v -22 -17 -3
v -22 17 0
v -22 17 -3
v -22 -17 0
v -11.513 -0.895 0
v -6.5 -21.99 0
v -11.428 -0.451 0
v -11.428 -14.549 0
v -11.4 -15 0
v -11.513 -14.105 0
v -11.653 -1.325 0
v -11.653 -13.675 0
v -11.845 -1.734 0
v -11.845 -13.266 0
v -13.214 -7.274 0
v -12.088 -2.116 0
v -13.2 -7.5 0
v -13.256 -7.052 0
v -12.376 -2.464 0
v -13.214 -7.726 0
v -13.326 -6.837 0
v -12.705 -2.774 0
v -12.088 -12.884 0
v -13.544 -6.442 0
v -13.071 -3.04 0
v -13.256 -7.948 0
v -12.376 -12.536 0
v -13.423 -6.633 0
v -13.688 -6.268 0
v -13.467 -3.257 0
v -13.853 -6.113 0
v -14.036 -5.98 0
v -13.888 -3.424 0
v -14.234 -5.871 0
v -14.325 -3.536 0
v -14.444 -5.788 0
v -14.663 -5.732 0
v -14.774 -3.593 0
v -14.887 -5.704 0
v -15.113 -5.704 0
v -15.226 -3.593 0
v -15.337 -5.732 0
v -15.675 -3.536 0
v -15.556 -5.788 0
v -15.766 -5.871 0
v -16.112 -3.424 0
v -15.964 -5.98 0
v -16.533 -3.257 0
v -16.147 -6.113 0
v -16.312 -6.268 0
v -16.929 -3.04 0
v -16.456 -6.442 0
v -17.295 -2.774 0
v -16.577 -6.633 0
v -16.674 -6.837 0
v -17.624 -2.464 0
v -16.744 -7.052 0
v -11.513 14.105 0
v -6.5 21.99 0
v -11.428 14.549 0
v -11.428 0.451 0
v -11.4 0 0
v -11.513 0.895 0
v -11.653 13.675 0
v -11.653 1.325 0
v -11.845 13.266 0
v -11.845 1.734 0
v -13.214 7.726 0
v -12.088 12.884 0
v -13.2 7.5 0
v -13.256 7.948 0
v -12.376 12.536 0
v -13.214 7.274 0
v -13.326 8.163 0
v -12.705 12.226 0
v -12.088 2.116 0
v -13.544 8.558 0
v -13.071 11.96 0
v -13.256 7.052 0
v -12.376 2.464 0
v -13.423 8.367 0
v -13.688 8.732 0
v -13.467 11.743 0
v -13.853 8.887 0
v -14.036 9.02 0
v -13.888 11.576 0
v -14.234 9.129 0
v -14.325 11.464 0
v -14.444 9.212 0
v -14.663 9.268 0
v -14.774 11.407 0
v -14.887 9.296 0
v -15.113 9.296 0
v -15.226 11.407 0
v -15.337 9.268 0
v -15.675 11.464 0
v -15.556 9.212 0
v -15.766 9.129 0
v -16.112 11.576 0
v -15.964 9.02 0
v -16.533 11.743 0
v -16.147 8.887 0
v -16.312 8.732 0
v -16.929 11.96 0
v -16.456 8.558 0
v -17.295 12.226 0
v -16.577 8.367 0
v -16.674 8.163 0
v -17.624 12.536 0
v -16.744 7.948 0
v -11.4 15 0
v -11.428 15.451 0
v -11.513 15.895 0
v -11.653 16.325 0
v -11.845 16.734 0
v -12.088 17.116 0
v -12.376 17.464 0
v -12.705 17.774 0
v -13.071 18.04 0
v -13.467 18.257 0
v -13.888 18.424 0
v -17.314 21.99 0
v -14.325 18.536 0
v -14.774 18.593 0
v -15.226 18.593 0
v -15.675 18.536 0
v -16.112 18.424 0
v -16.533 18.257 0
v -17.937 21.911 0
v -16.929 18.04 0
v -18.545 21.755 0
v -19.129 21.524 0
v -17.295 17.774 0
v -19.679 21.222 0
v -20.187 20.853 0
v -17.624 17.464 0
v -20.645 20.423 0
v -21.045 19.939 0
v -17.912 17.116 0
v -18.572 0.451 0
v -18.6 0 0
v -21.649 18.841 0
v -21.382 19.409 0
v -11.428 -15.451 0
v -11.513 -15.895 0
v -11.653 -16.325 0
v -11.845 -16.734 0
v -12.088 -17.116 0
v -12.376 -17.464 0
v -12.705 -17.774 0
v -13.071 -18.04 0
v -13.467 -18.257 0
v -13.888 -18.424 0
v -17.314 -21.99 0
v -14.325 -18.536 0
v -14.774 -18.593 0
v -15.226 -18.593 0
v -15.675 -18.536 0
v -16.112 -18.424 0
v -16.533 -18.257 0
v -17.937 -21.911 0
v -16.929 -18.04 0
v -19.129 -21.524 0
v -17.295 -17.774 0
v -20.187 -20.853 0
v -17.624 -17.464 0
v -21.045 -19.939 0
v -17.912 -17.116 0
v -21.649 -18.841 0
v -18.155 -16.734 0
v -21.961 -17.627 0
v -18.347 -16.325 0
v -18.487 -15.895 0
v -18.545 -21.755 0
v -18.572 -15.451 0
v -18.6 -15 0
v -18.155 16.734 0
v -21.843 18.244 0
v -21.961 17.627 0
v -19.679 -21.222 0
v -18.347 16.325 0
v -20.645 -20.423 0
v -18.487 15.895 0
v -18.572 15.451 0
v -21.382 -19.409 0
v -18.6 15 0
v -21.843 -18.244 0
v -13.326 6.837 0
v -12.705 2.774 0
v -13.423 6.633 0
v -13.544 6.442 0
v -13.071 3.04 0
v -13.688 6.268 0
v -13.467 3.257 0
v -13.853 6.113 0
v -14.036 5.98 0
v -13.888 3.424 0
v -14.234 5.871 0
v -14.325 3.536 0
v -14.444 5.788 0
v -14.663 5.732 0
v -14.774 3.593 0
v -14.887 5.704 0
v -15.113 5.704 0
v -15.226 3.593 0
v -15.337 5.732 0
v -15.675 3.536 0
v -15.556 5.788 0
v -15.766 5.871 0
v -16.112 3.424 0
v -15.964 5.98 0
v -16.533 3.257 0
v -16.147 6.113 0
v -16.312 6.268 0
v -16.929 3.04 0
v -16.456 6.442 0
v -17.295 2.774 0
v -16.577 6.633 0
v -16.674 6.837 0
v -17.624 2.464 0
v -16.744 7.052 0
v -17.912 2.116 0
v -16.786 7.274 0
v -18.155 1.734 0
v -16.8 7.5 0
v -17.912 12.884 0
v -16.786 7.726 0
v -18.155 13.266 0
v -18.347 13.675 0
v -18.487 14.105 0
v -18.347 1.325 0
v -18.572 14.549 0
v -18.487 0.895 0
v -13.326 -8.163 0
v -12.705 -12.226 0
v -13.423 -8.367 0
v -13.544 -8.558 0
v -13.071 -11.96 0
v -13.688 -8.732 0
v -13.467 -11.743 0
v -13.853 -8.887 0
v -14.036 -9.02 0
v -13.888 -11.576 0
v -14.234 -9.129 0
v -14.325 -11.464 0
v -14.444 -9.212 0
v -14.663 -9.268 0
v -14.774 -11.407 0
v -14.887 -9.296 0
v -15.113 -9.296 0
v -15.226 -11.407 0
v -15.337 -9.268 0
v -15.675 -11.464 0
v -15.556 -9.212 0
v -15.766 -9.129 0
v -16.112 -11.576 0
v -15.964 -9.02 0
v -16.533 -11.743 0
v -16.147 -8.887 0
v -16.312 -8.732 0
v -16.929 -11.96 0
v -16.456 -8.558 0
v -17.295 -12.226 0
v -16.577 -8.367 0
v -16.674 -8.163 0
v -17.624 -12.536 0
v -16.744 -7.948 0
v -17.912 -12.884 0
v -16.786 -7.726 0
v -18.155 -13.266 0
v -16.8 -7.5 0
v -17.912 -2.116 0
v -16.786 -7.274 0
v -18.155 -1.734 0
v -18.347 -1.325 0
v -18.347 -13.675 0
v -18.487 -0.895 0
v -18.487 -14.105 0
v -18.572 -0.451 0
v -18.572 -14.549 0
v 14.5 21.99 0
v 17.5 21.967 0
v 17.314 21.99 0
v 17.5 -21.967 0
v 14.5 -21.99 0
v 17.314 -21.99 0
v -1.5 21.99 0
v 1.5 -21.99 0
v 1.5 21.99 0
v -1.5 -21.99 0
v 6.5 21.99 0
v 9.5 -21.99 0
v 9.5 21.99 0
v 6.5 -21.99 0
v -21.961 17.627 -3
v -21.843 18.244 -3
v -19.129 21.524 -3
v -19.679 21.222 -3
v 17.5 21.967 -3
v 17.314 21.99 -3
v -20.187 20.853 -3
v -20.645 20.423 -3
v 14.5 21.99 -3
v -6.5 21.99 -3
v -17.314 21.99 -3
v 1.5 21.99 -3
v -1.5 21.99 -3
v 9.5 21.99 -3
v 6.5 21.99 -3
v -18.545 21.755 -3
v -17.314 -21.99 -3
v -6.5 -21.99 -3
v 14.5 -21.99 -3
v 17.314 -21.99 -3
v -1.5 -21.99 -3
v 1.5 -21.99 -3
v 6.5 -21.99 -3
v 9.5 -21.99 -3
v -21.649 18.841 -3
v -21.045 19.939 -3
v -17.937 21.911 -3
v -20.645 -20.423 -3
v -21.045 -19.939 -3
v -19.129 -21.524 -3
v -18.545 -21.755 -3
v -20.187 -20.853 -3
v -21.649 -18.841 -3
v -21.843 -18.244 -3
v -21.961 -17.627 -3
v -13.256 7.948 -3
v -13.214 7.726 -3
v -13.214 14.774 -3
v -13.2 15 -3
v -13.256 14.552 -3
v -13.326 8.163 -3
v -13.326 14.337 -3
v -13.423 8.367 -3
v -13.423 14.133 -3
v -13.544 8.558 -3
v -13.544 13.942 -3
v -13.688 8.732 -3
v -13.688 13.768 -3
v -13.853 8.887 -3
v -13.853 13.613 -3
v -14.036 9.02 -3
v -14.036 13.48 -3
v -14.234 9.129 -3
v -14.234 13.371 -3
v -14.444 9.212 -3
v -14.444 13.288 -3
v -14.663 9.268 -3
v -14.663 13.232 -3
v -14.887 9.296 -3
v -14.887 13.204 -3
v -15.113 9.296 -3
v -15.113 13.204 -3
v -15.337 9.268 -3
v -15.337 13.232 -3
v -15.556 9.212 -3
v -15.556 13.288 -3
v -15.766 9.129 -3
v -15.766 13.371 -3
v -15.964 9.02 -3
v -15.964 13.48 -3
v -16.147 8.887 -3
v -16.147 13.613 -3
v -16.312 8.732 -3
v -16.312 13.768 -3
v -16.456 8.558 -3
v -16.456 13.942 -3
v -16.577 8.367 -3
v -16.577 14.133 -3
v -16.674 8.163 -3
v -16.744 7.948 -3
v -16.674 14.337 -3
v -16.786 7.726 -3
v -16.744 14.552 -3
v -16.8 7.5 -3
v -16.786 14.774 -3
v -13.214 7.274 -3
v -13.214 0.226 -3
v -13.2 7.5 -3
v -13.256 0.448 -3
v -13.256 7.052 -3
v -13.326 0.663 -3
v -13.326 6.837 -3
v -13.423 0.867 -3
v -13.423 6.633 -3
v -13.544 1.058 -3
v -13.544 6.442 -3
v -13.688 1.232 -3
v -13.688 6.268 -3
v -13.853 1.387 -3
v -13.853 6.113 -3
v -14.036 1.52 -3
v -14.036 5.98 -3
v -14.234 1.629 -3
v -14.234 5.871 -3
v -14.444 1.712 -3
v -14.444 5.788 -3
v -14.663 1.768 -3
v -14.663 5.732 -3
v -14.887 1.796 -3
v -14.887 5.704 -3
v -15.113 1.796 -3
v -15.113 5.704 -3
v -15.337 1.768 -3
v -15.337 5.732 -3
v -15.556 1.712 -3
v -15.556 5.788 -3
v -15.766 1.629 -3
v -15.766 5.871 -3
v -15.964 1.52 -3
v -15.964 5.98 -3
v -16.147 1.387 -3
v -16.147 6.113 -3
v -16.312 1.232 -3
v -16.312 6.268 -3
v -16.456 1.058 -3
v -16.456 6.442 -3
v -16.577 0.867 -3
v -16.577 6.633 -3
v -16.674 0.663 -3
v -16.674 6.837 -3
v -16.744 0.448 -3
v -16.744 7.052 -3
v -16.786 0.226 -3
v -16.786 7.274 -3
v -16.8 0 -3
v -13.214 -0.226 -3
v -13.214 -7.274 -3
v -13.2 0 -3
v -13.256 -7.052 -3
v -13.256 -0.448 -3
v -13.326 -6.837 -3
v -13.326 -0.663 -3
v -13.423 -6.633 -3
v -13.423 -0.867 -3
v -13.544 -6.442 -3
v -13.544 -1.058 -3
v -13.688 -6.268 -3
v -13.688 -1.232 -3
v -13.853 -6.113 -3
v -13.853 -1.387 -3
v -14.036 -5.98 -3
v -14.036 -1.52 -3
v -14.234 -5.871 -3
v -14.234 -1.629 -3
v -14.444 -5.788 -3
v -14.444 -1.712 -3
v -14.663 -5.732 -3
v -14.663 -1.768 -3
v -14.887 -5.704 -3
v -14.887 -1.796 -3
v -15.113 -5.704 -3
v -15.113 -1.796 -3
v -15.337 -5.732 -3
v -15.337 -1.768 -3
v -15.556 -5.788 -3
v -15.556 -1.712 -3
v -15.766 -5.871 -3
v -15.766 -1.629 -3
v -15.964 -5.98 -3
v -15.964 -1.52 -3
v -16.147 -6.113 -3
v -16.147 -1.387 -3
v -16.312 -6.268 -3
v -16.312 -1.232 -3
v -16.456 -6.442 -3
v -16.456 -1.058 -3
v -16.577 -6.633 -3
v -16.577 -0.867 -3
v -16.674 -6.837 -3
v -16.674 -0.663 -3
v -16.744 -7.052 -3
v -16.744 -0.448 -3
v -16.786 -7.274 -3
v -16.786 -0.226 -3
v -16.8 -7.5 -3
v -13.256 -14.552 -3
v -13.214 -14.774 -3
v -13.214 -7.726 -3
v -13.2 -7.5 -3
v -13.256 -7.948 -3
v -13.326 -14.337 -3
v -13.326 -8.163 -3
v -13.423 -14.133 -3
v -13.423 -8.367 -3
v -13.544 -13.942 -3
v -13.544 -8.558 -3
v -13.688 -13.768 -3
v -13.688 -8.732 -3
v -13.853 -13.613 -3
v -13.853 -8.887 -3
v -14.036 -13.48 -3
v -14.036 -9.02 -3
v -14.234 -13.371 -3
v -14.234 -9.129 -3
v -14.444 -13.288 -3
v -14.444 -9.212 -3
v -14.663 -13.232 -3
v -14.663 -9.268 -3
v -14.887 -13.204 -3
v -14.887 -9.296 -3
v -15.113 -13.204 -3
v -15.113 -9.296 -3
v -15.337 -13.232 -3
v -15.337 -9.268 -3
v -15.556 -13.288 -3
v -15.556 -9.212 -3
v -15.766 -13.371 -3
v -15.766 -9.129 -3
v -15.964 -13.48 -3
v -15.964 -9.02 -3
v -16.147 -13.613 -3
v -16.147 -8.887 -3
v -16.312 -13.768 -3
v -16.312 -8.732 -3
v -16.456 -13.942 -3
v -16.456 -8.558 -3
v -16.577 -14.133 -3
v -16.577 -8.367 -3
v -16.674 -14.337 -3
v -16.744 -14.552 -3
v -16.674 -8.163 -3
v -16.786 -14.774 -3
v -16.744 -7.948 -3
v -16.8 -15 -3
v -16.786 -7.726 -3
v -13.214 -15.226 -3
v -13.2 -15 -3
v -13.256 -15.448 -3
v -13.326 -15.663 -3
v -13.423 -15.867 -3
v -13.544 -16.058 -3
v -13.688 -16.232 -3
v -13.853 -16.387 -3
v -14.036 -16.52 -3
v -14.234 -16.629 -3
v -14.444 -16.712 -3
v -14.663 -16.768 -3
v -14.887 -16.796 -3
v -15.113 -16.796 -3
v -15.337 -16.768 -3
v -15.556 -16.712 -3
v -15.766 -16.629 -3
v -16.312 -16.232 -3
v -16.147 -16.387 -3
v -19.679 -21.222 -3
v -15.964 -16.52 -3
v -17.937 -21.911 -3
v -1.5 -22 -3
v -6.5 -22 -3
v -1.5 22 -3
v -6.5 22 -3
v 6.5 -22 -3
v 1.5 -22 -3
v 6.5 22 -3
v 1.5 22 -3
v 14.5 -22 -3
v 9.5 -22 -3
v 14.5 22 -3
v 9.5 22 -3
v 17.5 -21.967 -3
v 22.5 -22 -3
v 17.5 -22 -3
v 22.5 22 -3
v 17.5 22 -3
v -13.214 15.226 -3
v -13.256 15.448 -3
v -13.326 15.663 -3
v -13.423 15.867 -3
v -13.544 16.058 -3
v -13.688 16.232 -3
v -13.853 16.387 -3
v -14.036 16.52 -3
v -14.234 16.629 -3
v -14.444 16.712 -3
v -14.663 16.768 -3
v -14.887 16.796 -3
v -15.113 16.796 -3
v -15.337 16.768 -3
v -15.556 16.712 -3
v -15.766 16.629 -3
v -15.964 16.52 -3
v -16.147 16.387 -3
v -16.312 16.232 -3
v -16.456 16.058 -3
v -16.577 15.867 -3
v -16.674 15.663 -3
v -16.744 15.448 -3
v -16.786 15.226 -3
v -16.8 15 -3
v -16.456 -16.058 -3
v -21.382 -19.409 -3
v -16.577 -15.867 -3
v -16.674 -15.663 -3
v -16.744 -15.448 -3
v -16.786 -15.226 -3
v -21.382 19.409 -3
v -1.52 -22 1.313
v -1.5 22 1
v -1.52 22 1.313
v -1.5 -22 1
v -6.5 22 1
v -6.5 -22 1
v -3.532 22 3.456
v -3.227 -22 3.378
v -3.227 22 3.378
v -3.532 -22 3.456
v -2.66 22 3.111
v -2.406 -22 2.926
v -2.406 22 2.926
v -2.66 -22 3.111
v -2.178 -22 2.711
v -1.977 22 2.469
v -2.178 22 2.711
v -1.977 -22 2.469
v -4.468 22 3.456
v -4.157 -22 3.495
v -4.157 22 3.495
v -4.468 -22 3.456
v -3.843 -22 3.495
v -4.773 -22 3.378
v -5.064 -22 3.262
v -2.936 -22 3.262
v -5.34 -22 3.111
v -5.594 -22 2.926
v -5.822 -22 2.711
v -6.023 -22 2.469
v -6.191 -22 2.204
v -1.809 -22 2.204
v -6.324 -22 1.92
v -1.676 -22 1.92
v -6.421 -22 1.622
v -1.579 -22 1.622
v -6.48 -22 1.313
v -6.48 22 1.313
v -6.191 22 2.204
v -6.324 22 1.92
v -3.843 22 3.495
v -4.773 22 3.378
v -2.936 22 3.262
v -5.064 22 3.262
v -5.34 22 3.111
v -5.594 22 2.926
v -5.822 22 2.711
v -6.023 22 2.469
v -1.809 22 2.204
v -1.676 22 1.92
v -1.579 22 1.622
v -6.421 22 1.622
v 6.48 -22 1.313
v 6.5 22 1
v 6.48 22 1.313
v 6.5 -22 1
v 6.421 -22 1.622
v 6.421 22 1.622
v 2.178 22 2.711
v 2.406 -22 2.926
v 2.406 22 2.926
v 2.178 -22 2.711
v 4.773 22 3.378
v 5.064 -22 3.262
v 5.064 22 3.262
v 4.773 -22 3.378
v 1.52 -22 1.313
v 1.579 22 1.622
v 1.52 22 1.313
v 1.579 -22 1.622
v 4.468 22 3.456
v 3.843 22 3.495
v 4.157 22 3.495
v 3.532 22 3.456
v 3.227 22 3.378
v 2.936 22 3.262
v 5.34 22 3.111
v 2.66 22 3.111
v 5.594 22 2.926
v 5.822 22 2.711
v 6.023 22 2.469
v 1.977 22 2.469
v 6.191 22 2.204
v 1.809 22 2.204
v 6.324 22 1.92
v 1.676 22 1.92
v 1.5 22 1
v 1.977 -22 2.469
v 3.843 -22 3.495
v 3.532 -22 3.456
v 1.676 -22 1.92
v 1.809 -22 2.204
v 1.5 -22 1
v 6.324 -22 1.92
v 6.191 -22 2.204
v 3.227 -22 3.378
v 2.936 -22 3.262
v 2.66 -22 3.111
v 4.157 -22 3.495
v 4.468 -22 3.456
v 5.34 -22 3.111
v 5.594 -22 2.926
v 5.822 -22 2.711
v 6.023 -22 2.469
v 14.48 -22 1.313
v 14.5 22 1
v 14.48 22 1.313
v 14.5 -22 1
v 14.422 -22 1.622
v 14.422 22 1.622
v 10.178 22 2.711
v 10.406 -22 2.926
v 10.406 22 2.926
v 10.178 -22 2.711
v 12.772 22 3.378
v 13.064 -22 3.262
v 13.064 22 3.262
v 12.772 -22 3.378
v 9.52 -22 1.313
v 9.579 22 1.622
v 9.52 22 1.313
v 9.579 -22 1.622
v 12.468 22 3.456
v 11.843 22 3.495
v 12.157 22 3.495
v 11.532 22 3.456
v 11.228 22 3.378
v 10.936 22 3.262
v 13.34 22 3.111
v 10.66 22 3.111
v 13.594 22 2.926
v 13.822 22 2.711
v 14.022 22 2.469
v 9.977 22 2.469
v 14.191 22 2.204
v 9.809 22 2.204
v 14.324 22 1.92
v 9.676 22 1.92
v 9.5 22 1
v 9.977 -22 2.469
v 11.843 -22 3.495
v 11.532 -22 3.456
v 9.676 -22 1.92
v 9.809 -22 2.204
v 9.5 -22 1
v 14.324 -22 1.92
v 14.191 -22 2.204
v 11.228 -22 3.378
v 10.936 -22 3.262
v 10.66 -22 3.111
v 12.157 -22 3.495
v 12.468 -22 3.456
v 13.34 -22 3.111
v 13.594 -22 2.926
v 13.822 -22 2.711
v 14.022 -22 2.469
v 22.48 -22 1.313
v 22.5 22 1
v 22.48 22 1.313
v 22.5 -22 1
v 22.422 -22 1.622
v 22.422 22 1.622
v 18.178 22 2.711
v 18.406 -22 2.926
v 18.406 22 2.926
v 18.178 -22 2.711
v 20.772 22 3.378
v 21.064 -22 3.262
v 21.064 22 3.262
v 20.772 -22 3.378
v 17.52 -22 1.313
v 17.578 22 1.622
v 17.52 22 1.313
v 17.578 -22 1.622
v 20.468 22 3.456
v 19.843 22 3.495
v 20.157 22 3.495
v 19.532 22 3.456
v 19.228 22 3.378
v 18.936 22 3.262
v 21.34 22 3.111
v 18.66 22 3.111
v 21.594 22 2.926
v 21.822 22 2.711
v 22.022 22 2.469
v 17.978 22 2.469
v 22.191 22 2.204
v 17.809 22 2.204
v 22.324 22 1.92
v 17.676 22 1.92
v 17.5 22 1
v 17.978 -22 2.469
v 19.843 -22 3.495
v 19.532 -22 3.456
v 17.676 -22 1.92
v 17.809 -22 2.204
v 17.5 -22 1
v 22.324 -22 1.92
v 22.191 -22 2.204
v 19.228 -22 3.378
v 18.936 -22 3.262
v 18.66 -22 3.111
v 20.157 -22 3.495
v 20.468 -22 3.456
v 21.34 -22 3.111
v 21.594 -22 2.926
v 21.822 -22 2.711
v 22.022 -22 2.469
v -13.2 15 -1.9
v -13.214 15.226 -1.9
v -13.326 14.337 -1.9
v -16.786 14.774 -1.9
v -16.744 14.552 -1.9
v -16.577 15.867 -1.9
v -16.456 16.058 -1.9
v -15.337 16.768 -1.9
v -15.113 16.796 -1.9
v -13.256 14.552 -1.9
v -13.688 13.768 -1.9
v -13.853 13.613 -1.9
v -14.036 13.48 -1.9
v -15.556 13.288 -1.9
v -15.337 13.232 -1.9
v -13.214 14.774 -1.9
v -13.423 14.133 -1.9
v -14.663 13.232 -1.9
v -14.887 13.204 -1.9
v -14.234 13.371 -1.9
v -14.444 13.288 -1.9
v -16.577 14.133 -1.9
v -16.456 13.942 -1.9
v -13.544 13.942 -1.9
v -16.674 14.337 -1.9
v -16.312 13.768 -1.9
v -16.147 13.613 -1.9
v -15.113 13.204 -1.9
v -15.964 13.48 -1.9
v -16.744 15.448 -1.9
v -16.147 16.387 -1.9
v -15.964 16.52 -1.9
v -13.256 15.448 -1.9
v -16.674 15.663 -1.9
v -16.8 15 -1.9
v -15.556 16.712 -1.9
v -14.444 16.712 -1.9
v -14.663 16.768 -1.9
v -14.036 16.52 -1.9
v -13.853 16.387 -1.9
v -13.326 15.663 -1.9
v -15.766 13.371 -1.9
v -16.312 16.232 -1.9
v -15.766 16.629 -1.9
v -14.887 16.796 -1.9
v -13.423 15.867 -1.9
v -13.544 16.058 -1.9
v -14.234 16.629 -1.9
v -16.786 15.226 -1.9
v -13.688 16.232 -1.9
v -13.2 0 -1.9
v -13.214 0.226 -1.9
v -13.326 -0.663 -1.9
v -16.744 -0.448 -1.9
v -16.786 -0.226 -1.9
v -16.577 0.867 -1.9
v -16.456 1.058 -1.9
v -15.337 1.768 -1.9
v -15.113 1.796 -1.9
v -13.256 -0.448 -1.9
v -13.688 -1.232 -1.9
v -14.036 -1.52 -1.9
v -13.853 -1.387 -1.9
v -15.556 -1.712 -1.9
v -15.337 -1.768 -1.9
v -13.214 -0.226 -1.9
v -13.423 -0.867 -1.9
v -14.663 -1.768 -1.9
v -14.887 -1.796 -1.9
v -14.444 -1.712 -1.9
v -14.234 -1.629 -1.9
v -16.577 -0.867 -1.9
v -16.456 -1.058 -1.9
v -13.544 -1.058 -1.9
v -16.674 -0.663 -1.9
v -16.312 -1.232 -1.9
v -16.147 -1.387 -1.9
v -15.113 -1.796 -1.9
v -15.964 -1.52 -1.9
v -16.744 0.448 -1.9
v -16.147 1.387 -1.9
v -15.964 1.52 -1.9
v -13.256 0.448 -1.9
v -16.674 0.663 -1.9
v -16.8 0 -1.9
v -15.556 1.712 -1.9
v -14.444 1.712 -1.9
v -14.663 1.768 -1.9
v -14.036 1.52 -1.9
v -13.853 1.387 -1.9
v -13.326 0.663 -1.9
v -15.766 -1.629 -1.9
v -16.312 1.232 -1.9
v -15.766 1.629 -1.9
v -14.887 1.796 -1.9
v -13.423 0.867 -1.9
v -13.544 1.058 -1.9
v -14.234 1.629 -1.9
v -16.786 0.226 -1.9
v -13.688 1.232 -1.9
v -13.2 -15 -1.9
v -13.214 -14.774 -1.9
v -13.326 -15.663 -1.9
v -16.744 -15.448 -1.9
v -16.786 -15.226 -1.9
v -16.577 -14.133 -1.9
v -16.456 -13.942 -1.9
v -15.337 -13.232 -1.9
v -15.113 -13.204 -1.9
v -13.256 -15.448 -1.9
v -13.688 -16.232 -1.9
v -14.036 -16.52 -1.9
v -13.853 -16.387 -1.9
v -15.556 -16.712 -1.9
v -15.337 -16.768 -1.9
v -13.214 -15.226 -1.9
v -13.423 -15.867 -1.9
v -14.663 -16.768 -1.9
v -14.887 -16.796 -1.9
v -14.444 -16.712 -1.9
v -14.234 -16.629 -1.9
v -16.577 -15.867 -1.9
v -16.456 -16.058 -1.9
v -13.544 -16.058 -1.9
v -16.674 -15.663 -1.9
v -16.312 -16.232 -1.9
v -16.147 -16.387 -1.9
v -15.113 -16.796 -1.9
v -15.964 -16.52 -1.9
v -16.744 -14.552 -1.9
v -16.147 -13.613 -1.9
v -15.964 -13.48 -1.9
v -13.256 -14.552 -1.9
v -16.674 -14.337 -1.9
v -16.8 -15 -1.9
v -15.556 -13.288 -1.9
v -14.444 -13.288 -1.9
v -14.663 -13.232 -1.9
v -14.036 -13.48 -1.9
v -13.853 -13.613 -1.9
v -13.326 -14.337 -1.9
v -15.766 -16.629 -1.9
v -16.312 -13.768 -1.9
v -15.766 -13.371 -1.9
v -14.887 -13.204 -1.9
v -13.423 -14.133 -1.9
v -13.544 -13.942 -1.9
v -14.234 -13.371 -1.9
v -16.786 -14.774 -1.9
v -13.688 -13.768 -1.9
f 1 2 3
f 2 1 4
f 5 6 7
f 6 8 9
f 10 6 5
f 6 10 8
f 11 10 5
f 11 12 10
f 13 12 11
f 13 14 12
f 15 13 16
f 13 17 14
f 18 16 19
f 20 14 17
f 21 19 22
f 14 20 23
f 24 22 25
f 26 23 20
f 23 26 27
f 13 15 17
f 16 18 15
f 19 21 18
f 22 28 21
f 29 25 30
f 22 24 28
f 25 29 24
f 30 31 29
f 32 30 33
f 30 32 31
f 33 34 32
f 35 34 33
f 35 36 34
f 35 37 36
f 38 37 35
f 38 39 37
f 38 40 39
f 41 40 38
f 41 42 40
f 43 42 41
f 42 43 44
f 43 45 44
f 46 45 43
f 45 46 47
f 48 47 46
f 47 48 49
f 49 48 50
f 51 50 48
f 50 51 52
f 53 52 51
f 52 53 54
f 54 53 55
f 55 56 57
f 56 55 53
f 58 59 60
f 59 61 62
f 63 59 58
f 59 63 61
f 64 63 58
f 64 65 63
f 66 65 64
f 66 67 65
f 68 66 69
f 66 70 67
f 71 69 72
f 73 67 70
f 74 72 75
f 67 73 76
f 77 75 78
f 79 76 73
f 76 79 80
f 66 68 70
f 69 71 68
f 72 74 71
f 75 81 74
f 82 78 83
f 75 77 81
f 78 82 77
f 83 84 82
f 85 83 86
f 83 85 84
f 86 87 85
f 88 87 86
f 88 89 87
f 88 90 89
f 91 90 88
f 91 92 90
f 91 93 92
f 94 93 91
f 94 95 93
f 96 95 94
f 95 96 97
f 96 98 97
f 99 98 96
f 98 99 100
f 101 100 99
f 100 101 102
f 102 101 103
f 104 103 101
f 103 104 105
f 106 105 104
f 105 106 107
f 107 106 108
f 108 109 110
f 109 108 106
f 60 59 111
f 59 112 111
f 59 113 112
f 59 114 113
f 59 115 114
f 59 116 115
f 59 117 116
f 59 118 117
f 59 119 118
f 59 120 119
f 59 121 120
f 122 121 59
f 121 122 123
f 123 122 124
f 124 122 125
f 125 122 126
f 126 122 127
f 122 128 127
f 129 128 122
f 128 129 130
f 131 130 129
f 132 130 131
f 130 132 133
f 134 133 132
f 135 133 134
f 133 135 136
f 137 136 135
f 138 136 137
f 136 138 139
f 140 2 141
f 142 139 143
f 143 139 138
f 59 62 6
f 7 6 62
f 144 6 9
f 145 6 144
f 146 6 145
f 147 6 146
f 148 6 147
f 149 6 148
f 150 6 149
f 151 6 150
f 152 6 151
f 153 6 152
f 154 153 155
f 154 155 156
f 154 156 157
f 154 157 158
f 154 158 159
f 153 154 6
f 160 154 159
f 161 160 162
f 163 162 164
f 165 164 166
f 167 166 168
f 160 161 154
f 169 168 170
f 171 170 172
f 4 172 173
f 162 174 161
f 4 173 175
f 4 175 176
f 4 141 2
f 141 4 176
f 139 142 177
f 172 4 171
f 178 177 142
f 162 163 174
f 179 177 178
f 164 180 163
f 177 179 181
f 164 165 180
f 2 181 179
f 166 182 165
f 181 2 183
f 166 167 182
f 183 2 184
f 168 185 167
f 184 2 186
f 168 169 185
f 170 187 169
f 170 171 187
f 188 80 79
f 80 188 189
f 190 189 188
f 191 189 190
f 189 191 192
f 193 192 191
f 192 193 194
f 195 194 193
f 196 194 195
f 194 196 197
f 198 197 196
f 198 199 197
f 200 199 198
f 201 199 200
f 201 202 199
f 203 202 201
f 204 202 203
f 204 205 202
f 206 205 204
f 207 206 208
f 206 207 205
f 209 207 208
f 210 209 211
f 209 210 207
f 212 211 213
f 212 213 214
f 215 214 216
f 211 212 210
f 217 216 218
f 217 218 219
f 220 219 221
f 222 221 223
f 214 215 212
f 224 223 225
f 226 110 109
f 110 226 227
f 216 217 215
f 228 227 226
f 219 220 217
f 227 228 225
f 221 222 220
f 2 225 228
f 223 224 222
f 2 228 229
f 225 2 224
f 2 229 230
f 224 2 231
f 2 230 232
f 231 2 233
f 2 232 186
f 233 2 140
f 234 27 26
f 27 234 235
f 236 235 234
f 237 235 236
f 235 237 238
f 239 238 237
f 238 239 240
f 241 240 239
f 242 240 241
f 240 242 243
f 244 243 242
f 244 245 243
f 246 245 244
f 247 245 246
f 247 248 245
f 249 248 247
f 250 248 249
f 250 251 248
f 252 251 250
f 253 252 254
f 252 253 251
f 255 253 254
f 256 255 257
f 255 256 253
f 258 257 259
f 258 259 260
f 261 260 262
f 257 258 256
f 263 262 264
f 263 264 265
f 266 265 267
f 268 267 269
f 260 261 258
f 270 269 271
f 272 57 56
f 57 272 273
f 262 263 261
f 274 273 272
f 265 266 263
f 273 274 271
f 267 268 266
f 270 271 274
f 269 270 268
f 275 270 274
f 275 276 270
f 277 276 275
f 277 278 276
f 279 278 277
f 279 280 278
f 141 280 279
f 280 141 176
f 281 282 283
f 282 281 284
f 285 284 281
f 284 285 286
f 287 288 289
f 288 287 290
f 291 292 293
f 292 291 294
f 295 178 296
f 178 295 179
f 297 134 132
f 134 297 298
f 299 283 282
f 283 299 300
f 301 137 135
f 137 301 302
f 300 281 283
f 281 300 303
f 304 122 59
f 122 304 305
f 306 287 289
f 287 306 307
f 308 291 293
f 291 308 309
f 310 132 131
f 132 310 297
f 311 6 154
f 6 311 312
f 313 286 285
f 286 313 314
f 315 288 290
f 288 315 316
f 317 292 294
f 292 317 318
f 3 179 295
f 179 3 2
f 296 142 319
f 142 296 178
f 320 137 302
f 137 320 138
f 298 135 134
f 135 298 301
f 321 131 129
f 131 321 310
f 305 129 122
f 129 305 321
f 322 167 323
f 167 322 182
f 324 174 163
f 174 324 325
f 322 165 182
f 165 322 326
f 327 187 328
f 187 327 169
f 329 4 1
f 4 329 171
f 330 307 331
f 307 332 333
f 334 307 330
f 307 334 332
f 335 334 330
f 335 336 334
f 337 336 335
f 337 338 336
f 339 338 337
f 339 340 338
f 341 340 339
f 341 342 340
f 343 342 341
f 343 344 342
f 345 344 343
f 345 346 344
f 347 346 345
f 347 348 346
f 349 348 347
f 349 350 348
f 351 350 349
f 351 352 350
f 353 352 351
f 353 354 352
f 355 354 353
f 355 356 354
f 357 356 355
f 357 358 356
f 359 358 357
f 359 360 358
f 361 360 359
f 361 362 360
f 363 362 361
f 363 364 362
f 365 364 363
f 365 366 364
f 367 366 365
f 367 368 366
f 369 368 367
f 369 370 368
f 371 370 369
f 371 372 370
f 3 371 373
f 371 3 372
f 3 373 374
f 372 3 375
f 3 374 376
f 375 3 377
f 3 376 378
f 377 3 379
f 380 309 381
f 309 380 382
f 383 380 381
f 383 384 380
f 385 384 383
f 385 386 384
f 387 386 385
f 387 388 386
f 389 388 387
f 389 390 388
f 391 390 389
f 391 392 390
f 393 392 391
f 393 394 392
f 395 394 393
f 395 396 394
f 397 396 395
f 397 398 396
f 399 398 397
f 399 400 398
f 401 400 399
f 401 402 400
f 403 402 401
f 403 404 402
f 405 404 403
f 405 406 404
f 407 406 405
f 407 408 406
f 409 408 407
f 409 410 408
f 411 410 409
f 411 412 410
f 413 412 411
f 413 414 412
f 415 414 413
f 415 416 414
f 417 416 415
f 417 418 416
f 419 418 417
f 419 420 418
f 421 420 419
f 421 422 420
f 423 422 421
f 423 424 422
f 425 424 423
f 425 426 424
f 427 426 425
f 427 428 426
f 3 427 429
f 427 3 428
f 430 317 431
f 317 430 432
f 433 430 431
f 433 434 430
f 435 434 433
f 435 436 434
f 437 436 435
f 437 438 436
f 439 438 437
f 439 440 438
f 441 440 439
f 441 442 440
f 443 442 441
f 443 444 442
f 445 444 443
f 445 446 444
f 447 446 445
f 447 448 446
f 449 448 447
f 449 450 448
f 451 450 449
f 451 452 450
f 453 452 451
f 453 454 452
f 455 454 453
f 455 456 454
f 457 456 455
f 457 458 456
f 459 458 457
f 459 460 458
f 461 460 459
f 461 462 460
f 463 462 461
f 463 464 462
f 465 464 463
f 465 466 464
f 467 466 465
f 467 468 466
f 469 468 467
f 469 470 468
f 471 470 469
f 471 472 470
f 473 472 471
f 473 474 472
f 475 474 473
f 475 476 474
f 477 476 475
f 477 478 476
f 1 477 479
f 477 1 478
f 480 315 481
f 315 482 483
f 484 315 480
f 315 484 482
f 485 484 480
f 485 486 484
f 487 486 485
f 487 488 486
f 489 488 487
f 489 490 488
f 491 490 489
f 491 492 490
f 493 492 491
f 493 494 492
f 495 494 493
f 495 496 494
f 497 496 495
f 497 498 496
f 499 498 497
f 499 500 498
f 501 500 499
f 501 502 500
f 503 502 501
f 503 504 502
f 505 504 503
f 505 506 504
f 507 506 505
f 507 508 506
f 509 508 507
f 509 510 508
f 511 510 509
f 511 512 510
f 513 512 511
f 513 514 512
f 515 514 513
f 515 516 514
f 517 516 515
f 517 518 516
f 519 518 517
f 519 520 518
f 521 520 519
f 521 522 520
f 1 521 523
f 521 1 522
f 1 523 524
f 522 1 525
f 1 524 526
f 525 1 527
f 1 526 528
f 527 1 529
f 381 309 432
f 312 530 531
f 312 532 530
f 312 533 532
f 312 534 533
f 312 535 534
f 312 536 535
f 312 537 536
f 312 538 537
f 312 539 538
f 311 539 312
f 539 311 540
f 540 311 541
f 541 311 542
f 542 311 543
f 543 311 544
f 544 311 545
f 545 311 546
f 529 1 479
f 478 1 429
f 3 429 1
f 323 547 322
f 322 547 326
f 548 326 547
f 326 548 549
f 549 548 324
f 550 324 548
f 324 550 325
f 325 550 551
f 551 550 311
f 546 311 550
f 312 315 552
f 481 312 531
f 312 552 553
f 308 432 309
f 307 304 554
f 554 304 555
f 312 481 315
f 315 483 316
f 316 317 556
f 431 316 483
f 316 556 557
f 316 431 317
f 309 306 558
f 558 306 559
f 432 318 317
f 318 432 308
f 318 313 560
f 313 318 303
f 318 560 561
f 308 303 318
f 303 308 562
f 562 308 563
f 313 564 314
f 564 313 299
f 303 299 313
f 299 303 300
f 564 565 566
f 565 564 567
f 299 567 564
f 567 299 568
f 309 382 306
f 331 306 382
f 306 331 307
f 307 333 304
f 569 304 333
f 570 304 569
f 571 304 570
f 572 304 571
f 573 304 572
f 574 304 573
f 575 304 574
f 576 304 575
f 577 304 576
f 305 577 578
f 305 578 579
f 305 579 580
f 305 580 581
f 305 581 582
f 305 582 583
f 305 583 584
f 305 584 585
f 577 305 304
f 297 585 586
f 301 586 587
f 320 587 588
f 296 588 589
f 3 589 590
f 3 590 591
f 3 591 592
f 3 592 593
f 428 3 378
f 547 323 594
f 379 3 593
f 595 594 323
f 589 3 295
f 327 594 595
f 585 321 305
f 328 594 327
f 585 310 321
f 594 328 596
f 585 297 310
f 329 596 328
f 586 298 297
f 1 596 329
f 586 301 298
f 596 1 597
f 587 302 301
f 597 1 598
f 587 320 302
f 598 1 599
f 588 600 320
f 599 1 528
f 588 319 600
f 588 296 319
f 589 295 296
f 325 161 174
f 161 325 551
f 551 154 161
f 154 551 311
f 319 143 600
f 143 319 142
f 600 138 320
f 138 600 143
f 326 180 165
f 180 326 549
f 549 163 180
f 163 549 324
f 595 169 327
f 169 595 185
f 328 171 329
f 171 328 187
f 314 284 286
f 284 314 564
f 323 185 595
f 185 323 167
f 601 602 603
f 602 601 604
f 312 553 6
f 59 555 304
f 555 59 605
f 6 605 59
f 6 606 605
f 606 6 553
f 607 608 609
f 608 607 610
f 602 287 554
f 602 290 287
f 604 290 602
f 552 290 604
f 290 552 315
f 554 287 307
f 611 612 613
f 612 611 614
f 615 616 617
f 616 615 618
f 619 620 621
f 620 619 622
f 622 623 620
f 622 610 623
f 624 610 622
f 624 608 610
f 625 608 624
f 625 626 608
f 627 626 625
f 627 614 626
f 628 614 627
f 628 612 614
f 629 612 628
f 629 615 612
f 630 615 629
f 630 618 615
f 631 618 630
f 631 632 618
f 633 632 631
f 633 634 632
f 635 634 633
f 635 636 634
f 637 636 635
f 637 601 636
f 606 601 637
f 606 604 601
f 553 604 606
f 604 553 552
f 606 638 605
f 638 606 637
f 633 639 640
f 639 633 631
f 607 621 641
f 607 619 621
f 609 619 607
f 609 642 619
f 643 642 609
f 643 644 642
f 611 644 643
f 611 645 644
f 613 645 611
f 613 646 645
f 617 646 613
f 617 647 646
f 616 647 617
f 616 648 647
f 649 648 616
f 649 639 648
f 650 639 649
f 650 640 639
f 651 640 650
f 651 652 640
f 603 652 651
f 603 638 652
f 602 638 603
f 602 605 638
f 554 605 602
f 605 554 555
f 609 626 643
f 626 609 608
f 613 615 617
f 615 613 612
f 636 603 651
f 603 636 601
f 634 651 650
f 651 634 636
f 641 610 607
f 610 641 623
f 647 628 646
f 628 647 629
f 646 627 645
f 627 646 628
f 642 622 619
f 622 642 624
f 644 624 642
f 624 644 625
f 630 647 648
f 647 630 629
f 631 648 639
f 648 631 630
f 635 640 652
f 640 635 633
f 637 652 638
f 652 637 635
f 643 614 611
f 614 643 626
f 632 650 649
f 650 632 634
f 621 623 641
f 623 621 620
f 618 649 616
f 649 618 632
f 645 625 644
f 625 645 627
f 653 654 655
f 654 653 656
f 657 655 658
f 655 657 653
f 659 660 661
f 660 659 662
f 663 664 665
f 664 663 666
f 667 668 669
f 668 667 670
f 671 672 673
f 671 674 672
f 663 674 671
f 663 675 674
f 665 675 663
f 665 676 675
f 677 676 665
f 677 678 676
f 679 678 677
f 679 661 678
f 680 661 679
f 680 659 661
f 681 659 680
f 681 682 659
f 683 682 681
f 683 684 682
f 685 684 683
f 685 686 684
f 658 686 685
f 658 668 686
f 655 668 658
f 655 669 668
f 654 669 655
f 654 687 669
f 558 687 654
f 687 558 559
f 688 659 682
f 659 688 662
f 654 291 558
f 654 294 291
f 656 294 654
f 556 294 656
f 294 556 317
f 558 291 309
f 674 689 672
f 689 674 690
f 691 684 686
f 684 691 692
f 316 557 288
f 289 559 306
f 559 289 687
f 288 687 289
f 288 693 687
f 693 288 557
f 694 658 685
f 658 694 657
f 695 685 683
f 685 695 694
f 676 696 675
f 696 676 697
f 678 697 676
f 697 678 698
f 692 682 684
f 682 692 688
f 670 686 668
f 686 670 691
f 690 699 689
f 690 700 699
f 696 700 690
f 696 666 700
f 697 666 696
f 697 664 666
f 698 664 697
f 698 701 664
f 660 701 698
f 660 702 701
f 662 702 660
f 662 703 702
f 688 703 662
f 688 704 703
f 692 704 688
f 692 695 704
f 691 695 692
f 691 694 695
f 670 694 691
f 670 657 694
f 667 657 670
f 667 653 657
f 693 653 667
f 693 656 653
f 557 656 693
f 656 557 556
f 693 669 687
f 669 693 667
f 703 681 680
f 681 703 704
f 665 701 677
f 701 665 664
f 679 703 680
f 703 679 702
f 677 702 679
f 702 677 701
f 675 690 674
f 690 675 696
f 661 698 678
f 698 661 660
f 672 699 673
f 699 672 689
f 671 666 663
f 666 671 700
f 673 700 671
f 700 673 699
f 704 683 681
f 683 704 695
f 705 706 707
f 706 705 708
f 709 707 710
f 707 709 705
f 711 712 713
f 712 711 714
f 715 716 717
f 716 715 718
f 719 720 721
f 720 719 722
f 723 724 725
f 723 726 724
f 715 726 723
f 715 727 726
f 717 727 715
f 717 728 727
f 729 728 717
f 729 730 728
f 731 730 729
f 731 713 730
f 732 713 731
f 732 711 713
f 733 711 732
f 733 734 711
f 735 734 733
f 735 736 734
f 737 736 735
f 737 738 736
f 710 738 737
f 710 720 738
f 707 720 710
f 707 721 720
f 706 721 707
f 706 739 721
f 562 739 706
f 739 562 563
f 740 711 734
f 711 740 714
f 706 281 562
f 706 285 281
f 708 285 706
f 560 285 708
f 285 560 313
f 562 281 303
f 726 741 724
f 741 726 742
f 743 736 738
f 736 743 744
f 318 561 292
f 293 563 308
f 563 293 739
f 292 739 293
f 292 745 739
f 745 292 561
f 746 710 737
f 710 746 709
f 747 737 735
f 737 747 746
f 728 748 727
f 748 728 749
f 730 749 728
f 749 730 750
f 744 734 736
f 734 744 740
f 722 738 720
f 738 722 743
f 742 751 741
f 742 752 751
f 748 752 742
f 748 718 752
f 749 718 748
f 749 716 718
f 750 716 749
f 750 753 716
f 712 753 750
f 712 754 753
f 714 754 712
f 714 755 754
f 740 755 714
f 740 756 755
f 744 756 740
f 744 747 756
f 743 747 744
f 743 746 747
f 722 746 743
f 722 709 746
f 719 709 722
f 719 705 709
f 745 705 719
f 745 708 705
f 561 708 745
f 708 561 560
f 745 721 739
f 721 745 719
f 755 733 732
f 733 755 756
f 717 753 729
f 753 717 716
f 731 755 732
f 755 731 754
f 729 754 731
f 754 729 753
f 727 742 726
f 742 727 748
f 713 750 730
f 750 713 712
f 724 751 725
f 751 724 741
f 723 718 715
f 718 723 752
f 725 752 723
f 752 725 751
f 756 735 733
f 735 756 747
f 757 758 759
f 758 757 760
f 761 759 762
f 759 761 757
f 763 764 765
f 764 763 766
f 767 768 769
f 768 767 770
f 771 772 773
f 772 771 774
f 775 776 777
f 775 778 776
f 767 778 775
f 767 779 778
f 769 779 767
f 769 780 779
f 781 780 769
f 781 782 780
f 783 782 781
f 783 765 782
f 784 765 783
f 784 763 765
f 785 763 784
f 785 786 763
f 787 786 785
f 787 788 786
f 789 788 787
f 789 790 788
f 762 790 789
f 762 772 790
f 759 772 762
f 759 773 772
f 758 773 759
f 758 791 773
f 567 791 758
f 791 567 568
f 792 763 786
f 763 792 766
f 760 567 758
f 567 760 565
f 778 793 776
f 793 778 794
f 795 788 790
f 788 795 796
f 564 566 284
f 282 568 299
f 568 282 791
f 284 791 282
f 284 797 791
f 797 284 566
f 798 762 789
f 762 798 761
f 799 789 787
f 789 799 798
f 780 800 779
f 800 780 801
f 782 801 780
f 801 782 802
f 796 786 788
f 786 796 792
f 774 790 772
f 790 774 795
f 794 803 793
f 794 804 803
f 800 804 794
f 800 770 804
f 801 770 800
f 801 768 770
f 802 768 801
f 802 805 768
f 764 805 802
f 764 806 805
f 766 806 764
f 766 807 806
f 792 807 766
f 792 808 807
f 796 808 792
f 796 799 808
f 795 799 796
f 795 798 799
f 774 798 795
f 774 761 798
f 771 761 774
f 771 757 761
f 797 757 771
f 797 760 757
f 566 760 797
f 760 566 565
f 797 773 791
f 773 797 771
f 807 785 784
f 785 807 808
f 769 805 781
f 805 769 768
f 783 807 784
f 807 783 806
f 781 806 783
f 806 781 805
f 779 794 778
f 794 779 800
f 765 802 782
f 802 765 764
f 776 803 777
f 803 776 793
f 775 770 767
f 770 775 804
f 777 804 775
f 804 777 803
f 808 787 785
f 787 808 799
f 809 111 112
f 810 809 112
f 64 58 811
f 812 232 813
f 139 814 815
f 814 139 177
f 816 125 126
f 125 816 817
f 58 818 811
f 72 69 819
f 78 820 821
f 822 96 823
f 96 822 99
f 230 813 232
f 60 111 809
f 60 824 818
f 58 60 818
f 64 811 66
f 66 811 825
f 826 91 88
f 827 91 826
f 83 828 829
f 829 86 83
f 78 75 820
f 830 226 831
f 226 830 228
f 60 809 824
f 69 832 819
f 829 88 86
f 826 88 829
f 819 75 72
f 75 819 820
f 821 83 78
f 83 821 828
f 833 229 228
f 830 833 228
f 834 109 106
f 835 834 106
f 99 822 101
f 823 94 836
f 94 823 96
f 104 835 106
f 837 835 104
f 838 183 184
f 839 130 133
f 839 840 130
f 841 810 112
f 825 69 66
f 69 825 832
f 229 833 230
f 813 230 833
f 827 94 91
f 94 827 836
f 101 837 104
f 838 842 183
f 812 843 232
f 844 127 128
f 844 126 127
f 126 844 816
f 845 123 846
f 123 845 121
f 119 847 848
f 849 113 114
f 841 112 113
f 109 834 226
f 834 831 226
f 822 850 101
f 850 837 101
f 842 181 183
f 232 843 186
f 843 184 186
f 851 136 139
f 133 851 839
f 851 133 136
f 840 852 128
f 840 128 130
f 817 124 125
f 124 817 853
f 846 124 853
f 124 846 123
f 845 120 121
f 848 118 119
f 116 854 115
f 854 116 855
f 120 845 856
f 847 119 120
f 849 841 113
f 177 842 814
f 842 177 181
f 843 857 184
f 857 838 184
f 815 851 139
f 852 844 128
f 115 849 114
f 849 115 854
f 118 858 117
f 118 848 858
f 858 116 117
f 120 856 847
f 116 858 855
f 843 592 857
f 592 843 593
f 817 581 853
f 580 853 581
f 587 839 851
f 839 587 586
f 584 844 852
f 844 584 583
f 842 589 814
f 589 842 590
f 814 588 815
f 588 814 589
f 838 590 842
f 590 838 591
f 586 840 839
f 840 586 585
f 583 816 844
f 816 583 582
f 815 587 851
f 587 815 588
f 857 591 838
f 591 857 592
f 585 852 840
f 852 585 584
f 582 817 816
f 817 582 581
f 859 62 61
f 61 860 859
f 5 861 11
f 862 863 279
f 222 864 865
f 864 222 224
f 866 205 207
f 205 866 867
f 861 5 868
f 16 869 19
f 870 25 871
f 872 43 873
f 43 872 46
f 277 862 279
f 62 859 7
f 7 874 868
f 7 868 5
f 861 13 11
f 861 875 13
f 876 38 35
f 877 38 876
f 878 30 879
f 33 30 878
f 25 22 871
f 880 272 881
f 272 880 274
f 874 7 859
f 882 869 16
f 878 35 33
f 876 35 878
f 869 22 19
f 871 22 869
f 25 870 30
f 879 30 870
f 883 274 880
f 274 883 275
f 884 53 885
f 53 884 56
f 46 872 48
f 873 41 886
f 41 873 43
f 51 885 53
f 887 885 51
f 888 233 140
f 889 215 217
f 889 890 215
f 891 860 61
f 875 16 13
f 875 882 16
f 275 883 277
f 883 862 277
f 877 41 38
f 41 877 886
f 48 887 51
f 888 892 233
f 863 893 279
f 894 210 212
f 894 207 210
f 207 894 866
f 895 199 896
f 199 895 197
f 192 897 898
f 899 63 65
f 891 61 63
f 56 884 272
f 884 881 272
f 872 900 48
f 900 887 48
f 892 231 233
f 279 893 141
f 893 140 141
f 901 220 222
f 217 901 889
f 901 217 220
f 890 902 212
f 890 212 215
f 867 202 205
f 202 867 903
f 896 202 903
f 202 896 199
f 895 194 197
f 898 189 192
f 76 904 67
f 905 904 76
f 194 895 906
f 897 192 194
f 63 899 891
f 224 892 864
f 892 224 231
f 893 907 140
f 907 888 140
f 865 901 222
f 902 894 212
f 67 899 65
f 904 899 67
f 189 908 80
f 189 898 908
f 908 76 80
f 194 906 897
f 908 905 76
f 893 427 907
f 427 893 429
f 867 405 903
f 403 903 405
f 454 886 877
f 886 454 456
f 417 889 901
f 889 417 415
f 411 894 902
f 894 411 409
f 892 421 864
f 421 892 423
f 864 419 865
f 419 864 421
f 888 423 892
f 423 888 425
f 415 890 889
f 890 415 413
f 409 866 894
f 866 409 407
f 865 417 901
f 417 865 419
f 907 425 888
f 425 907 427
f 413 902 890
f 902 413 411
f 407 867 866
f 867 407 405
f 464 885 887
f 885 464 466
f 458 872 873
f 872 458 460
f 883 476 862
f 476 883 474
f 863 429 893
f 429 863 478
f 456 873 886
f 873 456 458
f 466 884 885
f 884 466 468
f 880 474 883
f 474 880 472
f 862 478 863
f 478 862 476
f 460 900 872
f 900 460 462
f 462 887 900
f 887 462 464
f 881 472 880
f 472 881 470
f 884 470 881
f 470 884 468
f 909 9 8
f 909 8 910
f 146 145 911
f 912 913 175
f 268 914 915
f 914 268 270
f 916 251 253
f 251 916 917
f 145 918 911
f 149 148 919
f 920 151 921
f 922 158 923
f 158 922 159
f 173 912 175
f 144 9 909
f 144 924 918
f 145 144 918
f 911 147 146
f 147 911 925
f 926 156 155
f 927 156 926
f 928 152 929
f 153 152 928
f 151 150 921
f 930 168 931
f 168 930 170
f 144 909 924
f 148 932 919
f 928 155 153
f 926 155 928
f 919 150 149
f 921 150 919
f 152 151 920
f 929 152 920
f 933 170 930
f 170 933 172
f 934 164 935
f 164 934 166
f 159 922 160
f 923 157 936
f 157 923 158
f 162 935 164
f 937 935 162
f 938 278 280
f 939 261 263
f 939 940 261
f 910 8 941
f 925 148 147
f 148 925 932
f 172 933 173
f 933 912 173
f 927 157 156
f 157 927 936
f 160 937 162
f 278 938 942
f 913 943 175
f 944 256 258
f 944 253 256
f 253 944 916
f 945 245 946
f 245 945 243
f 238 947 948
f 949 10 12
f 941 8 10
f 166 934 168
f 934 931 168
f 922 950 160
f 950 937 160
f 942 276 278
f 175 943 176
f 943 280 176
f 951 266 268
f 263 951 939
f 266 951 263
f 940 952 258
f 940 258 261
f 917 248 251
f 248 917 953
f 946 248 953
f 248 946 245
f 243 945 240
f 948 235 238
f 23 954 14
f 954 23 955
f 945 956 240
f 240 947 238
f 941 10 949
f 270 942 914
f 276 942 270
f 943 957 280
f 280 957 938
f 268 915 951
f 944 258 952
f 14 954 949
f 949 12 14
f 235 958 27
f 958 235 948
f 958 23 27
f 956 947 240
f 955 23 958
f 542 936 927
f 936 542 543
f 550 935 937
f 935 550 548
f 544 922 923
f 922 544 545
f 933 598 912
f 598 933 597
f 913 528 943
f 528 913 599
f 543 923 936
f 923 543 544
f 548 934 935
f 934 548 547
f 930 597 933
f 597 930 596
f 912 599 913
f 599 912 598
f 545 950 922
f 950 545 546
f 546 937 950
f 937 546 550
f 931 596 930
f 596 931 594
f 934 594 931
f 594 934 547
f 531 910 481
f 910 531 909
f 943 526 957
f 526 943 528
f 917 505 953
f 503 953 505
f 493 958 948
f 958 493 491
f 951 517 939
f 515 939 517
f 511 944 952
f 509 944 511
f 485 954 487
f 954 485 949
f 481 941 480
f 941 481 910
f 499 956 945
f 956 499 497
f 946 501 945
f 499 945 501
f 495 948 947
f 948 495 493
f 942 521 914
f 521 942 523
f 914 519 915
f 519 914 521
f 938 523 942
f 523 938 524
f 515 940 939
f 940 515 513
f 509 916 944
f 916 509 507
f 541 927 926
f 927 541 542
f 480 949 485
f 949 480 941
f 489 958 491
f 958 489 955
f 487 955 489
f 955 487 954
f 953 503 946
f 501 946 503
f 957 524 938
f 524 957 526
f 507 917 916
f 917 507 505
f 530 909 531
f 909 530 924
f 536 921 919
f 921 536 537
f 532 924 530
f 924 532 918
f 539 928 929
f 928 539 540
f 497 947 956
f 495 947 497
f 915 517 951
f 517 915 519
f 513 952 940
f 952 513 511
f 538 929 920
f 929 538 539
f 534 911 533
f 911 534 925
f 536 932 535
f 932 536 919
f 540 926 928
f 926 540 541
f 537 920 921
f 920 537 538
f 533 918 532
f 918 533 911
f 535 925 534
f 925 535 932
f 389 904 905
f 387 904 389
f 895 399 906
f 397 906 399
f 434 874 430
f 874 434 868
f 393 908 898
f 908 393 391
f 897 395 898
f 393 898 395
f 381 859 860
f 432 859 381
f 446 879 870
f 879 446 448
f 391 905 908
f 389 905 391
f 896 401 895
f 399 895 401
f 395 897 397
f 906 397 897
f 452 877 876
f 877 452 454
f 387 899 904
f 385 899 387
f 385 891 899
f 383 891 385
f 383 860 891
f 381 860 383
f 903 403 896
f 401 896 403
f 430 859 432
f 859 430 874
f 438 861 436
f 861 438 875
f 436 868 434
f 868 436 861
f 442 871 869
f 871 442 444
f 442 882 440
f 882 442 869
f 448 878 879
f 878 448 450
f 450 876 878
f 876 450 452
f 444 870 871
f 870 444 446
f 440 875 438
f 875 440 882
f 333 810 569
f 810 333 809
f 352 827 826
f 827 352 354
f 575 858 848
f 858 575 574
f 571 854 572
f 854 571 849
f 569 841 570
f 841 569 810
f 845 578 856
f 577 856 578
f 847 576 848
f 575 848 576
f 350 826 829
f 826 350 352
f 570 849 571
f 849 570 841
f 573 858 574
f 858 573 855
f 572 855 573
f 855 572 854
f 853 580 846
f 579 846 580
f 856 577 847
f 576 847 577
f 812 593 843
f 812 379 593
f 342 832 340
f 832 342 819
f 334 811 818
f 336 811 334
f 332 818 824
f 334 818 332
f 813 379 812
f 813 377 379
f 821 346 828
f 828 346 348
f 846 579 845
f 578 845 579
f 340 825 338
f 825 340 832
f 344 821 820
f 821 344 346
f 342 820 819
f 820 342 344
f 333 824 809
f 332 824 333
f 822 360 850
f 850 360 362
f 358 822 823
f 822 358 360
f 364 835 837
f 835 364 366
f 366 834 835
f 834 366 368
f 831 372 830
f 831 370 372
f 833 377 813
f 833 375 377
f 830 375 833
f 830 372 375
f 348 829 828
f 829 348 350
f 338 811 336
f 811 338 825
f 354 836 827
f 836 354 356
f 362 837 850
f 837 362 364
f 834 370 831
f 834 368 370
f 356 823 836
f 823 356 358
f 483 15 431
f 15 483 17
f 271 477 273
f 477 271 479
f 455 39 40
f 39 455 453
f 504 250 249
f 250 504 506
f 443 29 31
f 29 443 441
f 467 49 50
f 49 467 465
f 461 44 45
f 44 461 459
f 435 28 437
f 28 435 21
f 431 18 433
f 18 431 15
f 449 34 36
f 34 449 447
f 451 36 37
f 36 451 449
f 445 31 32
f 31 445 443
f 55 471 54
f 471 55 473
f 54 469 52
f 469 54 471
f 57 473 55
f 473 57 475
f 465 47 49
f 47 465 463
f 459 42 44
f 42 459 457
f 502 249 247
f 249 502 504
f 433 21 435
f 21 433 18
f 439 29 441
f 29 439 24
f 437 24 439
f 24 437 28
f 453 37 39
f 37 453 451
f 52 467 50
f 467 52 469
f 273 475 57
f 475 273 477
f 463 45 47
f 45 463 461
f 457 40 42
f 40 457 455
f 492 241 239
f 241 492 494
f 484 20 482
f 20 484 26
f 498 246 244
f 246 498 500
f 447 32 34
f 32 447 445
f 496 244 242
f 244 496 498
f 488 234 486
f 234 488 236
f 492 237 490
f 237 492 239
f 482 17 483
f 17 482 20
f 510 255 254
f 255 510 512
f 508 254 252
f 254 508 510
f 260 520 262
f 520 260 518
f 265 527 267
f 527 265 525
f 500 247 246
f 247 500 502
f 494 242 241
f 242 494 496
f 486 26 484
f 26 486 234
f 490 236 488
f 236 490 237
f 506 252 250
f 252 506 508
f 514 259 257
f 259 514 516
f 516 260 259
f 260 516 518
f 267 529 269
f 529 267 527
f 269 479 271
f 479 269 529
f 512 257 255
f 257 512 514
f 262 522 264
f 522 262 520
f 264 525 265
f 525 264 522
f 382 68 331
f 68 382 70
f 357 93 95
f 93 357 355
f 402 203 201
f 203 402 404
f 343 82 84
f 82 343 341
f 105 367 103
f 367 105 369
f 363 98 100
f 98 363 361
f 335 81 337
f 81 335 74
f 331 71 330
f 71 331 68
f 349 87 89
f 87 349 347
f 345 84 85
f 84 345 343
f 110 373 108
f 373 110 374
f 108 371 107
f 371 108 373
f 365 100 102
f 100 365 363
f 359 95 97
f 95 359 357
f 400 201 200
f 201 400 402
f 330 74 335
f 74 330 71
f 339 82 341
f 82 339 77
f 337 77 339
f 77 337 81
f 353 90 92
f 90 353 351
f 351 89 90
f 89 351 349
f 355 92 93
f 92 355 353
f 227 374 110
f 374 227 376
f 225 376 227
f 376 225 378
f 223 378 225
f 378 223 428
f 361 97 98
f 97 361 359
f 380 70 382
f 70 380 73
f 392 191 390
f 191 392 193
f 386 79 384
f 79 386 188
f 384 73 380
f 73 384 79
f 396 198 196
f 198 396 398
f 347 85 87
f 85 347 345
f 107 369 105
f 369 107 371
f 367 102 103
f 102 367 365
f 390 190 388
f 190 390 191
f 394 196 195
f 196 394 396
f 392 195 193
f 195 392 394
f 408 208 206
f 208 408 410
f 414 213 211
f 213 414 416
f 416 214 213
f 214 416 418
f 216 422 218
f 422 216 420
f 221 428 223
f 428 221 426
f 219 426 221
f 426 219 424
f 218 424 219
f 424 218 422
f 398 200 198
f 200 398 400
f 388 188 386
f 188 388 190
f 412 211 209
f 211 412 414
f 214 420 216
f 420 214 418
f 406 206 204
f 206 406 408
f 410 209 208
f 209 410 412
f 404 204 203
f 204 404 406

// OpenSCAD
$fn = 50;


difference() {
	union() {
		translate(v = [0, 0, -3]) {
			hull() {
				translate(v = [-17.0000000000, 17.0000000000, 0]) {
					cylinder(h = 3, r = 5);
				}
				translate(v = [17.0000000000, 17.0000000000, 0]) {
					cylinder(h = 3, r = 5);
				}
				translate(v = [-17.0000000000, -17.0000000000, 0]) {
					cylinder(h = 3, r = 5);
				}
				translate(v = [17.0000000000, -17.0000000000, 0]) {
					cylinder(h = 3, r = 5);
				}
			}
		}
		translate(v = [-4.0000000000, 22.0000000000, -1.5000000000]) {
			rotate(a = [90, 0, 0]) {
				hull() {
					translate(v = [-0.0000000000, 2.5000000000, 0]) {
						cylinder(h = 44, r = 2.5000000000);
					}
					translate(v = [0.0000000000, 2.5000000000, 0]) {
						cylinder(h = 44, r = 2.5000000000);
					}
					translate(v = [-0.0000000000, -2.5000000000, 0]) {
						cylinder(h = 44, r = 2.5000000000);
					}
					translate(v = [0.0000000000, -2.5000000000, 0]) {
						cylinder(h = 44, r = 2.5000000000);
					}
				}
			}
		}
		translate(v = [4.0000000000, 22.0000000000, -1.5000000000]) {
			rotate(a = [90, 0, 0]) {
				hull() {
					translate(v = [-0.0000000000, 2.5000000000, 0]) {
						cylinder(h = 44, r = 2.5000000000);
					}
					translate(v = [0.0000000000, 2.5000000000, 0]) {
						cylinder(h = 44, r = 2.5000000000);
					}
					translate(v = [-0.0000000000, -2.5000000000, 0]) {
						cylinder(h = 44, r = 2.5000000000);
					}
					translate(v = [0.0000000000, -2.5000000000, 0]) {
						cylinder(h = 44, r = 2.5000000000);
					}
				}
			}
		}
		translate(v = [12.0000000000, 22.0000000000, -1.5000000000]) {
			rotate(a = [90, 0, 0]) {
				hull() {
					translate(v = [-0.0000000000, 2.5000000000, 0]) {
						cylinder(h = 44, r = 2.5000000000);
					}
					translate(v = [0.0000000000, 2.5000000000, 0]) {
						cylinder(h = 44, r = 2.5000000000);
					}
					translate(v = [-0.0000000000, -2.5000000000, 0]) {
						cylinder(h = 44, r = 2.5000000000);
					}
					translate(v = [0.0000000000, -2.5000000000, 0]) {
						cylinder(h = 44, r = 2.5000000000);
					}
				}
			}
		}
		translate(v = [20.0000000000, 22.0000000000, -1.5000000000]) {
			rotate(a = [90, 0, 0]) {
				hull() {
					translate(v = [-0.0000000000, 2.5000000000, 0]) {
						cylinder(h = 44, r = 2.5000000000);
					}
					translate(v = [0.0000000000, 2.5000000000, 0]) {
						cylinder(h = 44, r = 2.5000000000);
					}
					translate(v = [-0.0000000000, -2.5000000000, 0]) {
						cylinder(h = 44, r = 2.5000000000);
					}
					translate(v = [0.0000000000, -2.5000000000, 0]) {
						cylinder(h = 44, r = 2.5000000000);
					}
				}
			}
		}
	}
	union() {
		translate(v = [-15.0000000000, 15.0000000000, 0]) {
			rotate(a = [0, 0, 0]) {
				difference() {
					union() {
						translate(v = [0, 0, -3.0000000000]) {
							cylinder(h = 3, r = 1.5000000000);
						}
						translate(v = [0, 0, -1.9000000000]) {
							cylinder(h = 1.9000000000, r1 = 1.8000000000, r2 = 3.6000000000);
						}
						translate(v = [0, 0, -3.0000000000]) {
							cylinder(h = 3, r = 1.8000000000);
						}
						translate(v = [0, 0, -3.0000000000]) {
							cylinder(h = 3, r = 1.5000000000);
						}
					}
					union();
				}
			}
		}
		translate(v = [-15.0000000000, 0.0000000000, 0]) {
			rotate(a = [0, 0, 0]) {
				difference() {
					union() {
						translate(v = [0, 0, -3.0000000000]) {
							cylinder(h = 3, r = 1.5000000000);
						}
						translate(v = [0, 0, -1.9000000000]) {
							cylinder(h = 1.9000000000, r1 = 1.8000000000, r2 = 3.6000000000);
						}
						translate(v = [0, 0, -3.0000000000]) {
							cylinder(h = 3, r = 1.8000000000);
						}
						translate(v = [0, 0, -3.0000000000]) {
							cylinder(h = 3, r = 1.5000000000);
						}
					}
					union();
				}
			}
		}
		translate(v = [-15.0000000000, -15.0000000000, 0]) {
			rotate(a = [0, 0, 0]) {
				difference() {
					union() {
						translate(v = [0, 0, -3.0000000000]) {
							cylinder(h = 3, r = 1.5000000000);
						}
						translate(v = [0, 0, -1.9000000000]) {
							cylinder(h = 1.9000000000, r1 = 1.8000000000, r2 = 3.6000000000);
						}
						translate(v = [0, 0, -3.0000000000]) {
							cylinder(h = 3, r = 1.8000000000);
						}
						translate(v = [0, 0, -3.0000000000]) {
							cylinder(h = 3, r = 1.5000000000);
						}
					}
					union();
				}
			}
		}
		translate(v = [-250.0000000000, -250.0000000000, -503]) {
			cube(size = [500, 500, 500]);
		}
		translate(v = [-250.0000000000, -250.0000000000, -503]) {
			cube(size = [500, 500, 500]);
		}
		translate(v = [-250.0000000000, -250.0000000000, -503]) {
			cube(size = [500, 500, 500]);
		}
		translate(v = [-15.0000000000, -15.0000000000, -100.0000000000]) {
			cylinder(h = 200, r = 1.8000000000);
		}
		translate(v = [-15.0000000000, 0.0000000000, -100.0000000000]) {
			cylinder(h = 200, r = 1.8000000000);
		}
		translate(v = [-15.0000000000, 15.0000000000, -100.0000000000]) {
			cylinder(h = 200, r = 1.8000000000);
		}
		translate(v = [-15.0000000000, -15.0000000000, -100.0000000000]) {
			cylinder(h = 200, r = 1.8000000000);
		}
		translate(v = [-15.0000000000, -7.5000000000, -100.0000000000]) {
			cylinder(h = 200, r = 1.8000000000);
		}
		translate(v = [-15.0000000000, 0.0000000000, -100.0000000000]) {
			cylinder(h = 200, r = 1.8000000000);
		}
		translate(v = [-15.0000000000, 7.5000000000, -100.0000000000]) {
			cylinder(h = 200, r = 1.8000000000);
		}
		translate(v = [-15.0000000000, 15.0000000000, -100.0000000000]) {
			cylinder(h = 200, r = 1.8000000000);
		}
		translate(v = [-15.0000000000, -15.0000000000, -100.0000000000]) {
			cylinder(h = 200, r = 1.8000000000);
		}
		translate(v = [-15.0000000000, -7.5000000000, -100.0000000000]) {
			cylinder(h = 200, r = 1.8000000000);
		}
		translate(v = [-15.0000000000, 0.0000000000, -100.0000000000]) {
			cylinder(h = 200, r = 1.8000000000);
		}
		translate(v = [-15.0000000000, 7.5000000000, -100.0000000000]) {
			cylinder(h = 200, r = 1.8000000000);
		}
		translate(v = [-15.0000000000, 15.0000000000, -100.0000000000]) {
			cylinder(h = 200, r = 1.8000000000);
		}
		translate(v = [-15.0000000000, -15.0000000000, -100.0000000000]) {
			cylinder(h = 200, r = 1.8000000000);
		}
		translate(v = [-15.0000000000, -7.5000000000, -100.0000000000]) {
			cylinder(h = 200, r = 1.8000000000);
		}
		translate(v = [-15.0000000000, 0.0000000000, -100.0000000000]) {
			cylinder(h = 200, r = 1.8000000000);
		}
		translate(v = [-15.0000000000, 7.5000000000, -100.0000000000]) {
			cylinder(h = 200, r = 1.8000000000);
		}
		translate(v = [-15.0000000000, 15.0000000000, -100.0000000000]) {
			cylinder(h = 200, r = 1.8000000000);
		}
	}
}
